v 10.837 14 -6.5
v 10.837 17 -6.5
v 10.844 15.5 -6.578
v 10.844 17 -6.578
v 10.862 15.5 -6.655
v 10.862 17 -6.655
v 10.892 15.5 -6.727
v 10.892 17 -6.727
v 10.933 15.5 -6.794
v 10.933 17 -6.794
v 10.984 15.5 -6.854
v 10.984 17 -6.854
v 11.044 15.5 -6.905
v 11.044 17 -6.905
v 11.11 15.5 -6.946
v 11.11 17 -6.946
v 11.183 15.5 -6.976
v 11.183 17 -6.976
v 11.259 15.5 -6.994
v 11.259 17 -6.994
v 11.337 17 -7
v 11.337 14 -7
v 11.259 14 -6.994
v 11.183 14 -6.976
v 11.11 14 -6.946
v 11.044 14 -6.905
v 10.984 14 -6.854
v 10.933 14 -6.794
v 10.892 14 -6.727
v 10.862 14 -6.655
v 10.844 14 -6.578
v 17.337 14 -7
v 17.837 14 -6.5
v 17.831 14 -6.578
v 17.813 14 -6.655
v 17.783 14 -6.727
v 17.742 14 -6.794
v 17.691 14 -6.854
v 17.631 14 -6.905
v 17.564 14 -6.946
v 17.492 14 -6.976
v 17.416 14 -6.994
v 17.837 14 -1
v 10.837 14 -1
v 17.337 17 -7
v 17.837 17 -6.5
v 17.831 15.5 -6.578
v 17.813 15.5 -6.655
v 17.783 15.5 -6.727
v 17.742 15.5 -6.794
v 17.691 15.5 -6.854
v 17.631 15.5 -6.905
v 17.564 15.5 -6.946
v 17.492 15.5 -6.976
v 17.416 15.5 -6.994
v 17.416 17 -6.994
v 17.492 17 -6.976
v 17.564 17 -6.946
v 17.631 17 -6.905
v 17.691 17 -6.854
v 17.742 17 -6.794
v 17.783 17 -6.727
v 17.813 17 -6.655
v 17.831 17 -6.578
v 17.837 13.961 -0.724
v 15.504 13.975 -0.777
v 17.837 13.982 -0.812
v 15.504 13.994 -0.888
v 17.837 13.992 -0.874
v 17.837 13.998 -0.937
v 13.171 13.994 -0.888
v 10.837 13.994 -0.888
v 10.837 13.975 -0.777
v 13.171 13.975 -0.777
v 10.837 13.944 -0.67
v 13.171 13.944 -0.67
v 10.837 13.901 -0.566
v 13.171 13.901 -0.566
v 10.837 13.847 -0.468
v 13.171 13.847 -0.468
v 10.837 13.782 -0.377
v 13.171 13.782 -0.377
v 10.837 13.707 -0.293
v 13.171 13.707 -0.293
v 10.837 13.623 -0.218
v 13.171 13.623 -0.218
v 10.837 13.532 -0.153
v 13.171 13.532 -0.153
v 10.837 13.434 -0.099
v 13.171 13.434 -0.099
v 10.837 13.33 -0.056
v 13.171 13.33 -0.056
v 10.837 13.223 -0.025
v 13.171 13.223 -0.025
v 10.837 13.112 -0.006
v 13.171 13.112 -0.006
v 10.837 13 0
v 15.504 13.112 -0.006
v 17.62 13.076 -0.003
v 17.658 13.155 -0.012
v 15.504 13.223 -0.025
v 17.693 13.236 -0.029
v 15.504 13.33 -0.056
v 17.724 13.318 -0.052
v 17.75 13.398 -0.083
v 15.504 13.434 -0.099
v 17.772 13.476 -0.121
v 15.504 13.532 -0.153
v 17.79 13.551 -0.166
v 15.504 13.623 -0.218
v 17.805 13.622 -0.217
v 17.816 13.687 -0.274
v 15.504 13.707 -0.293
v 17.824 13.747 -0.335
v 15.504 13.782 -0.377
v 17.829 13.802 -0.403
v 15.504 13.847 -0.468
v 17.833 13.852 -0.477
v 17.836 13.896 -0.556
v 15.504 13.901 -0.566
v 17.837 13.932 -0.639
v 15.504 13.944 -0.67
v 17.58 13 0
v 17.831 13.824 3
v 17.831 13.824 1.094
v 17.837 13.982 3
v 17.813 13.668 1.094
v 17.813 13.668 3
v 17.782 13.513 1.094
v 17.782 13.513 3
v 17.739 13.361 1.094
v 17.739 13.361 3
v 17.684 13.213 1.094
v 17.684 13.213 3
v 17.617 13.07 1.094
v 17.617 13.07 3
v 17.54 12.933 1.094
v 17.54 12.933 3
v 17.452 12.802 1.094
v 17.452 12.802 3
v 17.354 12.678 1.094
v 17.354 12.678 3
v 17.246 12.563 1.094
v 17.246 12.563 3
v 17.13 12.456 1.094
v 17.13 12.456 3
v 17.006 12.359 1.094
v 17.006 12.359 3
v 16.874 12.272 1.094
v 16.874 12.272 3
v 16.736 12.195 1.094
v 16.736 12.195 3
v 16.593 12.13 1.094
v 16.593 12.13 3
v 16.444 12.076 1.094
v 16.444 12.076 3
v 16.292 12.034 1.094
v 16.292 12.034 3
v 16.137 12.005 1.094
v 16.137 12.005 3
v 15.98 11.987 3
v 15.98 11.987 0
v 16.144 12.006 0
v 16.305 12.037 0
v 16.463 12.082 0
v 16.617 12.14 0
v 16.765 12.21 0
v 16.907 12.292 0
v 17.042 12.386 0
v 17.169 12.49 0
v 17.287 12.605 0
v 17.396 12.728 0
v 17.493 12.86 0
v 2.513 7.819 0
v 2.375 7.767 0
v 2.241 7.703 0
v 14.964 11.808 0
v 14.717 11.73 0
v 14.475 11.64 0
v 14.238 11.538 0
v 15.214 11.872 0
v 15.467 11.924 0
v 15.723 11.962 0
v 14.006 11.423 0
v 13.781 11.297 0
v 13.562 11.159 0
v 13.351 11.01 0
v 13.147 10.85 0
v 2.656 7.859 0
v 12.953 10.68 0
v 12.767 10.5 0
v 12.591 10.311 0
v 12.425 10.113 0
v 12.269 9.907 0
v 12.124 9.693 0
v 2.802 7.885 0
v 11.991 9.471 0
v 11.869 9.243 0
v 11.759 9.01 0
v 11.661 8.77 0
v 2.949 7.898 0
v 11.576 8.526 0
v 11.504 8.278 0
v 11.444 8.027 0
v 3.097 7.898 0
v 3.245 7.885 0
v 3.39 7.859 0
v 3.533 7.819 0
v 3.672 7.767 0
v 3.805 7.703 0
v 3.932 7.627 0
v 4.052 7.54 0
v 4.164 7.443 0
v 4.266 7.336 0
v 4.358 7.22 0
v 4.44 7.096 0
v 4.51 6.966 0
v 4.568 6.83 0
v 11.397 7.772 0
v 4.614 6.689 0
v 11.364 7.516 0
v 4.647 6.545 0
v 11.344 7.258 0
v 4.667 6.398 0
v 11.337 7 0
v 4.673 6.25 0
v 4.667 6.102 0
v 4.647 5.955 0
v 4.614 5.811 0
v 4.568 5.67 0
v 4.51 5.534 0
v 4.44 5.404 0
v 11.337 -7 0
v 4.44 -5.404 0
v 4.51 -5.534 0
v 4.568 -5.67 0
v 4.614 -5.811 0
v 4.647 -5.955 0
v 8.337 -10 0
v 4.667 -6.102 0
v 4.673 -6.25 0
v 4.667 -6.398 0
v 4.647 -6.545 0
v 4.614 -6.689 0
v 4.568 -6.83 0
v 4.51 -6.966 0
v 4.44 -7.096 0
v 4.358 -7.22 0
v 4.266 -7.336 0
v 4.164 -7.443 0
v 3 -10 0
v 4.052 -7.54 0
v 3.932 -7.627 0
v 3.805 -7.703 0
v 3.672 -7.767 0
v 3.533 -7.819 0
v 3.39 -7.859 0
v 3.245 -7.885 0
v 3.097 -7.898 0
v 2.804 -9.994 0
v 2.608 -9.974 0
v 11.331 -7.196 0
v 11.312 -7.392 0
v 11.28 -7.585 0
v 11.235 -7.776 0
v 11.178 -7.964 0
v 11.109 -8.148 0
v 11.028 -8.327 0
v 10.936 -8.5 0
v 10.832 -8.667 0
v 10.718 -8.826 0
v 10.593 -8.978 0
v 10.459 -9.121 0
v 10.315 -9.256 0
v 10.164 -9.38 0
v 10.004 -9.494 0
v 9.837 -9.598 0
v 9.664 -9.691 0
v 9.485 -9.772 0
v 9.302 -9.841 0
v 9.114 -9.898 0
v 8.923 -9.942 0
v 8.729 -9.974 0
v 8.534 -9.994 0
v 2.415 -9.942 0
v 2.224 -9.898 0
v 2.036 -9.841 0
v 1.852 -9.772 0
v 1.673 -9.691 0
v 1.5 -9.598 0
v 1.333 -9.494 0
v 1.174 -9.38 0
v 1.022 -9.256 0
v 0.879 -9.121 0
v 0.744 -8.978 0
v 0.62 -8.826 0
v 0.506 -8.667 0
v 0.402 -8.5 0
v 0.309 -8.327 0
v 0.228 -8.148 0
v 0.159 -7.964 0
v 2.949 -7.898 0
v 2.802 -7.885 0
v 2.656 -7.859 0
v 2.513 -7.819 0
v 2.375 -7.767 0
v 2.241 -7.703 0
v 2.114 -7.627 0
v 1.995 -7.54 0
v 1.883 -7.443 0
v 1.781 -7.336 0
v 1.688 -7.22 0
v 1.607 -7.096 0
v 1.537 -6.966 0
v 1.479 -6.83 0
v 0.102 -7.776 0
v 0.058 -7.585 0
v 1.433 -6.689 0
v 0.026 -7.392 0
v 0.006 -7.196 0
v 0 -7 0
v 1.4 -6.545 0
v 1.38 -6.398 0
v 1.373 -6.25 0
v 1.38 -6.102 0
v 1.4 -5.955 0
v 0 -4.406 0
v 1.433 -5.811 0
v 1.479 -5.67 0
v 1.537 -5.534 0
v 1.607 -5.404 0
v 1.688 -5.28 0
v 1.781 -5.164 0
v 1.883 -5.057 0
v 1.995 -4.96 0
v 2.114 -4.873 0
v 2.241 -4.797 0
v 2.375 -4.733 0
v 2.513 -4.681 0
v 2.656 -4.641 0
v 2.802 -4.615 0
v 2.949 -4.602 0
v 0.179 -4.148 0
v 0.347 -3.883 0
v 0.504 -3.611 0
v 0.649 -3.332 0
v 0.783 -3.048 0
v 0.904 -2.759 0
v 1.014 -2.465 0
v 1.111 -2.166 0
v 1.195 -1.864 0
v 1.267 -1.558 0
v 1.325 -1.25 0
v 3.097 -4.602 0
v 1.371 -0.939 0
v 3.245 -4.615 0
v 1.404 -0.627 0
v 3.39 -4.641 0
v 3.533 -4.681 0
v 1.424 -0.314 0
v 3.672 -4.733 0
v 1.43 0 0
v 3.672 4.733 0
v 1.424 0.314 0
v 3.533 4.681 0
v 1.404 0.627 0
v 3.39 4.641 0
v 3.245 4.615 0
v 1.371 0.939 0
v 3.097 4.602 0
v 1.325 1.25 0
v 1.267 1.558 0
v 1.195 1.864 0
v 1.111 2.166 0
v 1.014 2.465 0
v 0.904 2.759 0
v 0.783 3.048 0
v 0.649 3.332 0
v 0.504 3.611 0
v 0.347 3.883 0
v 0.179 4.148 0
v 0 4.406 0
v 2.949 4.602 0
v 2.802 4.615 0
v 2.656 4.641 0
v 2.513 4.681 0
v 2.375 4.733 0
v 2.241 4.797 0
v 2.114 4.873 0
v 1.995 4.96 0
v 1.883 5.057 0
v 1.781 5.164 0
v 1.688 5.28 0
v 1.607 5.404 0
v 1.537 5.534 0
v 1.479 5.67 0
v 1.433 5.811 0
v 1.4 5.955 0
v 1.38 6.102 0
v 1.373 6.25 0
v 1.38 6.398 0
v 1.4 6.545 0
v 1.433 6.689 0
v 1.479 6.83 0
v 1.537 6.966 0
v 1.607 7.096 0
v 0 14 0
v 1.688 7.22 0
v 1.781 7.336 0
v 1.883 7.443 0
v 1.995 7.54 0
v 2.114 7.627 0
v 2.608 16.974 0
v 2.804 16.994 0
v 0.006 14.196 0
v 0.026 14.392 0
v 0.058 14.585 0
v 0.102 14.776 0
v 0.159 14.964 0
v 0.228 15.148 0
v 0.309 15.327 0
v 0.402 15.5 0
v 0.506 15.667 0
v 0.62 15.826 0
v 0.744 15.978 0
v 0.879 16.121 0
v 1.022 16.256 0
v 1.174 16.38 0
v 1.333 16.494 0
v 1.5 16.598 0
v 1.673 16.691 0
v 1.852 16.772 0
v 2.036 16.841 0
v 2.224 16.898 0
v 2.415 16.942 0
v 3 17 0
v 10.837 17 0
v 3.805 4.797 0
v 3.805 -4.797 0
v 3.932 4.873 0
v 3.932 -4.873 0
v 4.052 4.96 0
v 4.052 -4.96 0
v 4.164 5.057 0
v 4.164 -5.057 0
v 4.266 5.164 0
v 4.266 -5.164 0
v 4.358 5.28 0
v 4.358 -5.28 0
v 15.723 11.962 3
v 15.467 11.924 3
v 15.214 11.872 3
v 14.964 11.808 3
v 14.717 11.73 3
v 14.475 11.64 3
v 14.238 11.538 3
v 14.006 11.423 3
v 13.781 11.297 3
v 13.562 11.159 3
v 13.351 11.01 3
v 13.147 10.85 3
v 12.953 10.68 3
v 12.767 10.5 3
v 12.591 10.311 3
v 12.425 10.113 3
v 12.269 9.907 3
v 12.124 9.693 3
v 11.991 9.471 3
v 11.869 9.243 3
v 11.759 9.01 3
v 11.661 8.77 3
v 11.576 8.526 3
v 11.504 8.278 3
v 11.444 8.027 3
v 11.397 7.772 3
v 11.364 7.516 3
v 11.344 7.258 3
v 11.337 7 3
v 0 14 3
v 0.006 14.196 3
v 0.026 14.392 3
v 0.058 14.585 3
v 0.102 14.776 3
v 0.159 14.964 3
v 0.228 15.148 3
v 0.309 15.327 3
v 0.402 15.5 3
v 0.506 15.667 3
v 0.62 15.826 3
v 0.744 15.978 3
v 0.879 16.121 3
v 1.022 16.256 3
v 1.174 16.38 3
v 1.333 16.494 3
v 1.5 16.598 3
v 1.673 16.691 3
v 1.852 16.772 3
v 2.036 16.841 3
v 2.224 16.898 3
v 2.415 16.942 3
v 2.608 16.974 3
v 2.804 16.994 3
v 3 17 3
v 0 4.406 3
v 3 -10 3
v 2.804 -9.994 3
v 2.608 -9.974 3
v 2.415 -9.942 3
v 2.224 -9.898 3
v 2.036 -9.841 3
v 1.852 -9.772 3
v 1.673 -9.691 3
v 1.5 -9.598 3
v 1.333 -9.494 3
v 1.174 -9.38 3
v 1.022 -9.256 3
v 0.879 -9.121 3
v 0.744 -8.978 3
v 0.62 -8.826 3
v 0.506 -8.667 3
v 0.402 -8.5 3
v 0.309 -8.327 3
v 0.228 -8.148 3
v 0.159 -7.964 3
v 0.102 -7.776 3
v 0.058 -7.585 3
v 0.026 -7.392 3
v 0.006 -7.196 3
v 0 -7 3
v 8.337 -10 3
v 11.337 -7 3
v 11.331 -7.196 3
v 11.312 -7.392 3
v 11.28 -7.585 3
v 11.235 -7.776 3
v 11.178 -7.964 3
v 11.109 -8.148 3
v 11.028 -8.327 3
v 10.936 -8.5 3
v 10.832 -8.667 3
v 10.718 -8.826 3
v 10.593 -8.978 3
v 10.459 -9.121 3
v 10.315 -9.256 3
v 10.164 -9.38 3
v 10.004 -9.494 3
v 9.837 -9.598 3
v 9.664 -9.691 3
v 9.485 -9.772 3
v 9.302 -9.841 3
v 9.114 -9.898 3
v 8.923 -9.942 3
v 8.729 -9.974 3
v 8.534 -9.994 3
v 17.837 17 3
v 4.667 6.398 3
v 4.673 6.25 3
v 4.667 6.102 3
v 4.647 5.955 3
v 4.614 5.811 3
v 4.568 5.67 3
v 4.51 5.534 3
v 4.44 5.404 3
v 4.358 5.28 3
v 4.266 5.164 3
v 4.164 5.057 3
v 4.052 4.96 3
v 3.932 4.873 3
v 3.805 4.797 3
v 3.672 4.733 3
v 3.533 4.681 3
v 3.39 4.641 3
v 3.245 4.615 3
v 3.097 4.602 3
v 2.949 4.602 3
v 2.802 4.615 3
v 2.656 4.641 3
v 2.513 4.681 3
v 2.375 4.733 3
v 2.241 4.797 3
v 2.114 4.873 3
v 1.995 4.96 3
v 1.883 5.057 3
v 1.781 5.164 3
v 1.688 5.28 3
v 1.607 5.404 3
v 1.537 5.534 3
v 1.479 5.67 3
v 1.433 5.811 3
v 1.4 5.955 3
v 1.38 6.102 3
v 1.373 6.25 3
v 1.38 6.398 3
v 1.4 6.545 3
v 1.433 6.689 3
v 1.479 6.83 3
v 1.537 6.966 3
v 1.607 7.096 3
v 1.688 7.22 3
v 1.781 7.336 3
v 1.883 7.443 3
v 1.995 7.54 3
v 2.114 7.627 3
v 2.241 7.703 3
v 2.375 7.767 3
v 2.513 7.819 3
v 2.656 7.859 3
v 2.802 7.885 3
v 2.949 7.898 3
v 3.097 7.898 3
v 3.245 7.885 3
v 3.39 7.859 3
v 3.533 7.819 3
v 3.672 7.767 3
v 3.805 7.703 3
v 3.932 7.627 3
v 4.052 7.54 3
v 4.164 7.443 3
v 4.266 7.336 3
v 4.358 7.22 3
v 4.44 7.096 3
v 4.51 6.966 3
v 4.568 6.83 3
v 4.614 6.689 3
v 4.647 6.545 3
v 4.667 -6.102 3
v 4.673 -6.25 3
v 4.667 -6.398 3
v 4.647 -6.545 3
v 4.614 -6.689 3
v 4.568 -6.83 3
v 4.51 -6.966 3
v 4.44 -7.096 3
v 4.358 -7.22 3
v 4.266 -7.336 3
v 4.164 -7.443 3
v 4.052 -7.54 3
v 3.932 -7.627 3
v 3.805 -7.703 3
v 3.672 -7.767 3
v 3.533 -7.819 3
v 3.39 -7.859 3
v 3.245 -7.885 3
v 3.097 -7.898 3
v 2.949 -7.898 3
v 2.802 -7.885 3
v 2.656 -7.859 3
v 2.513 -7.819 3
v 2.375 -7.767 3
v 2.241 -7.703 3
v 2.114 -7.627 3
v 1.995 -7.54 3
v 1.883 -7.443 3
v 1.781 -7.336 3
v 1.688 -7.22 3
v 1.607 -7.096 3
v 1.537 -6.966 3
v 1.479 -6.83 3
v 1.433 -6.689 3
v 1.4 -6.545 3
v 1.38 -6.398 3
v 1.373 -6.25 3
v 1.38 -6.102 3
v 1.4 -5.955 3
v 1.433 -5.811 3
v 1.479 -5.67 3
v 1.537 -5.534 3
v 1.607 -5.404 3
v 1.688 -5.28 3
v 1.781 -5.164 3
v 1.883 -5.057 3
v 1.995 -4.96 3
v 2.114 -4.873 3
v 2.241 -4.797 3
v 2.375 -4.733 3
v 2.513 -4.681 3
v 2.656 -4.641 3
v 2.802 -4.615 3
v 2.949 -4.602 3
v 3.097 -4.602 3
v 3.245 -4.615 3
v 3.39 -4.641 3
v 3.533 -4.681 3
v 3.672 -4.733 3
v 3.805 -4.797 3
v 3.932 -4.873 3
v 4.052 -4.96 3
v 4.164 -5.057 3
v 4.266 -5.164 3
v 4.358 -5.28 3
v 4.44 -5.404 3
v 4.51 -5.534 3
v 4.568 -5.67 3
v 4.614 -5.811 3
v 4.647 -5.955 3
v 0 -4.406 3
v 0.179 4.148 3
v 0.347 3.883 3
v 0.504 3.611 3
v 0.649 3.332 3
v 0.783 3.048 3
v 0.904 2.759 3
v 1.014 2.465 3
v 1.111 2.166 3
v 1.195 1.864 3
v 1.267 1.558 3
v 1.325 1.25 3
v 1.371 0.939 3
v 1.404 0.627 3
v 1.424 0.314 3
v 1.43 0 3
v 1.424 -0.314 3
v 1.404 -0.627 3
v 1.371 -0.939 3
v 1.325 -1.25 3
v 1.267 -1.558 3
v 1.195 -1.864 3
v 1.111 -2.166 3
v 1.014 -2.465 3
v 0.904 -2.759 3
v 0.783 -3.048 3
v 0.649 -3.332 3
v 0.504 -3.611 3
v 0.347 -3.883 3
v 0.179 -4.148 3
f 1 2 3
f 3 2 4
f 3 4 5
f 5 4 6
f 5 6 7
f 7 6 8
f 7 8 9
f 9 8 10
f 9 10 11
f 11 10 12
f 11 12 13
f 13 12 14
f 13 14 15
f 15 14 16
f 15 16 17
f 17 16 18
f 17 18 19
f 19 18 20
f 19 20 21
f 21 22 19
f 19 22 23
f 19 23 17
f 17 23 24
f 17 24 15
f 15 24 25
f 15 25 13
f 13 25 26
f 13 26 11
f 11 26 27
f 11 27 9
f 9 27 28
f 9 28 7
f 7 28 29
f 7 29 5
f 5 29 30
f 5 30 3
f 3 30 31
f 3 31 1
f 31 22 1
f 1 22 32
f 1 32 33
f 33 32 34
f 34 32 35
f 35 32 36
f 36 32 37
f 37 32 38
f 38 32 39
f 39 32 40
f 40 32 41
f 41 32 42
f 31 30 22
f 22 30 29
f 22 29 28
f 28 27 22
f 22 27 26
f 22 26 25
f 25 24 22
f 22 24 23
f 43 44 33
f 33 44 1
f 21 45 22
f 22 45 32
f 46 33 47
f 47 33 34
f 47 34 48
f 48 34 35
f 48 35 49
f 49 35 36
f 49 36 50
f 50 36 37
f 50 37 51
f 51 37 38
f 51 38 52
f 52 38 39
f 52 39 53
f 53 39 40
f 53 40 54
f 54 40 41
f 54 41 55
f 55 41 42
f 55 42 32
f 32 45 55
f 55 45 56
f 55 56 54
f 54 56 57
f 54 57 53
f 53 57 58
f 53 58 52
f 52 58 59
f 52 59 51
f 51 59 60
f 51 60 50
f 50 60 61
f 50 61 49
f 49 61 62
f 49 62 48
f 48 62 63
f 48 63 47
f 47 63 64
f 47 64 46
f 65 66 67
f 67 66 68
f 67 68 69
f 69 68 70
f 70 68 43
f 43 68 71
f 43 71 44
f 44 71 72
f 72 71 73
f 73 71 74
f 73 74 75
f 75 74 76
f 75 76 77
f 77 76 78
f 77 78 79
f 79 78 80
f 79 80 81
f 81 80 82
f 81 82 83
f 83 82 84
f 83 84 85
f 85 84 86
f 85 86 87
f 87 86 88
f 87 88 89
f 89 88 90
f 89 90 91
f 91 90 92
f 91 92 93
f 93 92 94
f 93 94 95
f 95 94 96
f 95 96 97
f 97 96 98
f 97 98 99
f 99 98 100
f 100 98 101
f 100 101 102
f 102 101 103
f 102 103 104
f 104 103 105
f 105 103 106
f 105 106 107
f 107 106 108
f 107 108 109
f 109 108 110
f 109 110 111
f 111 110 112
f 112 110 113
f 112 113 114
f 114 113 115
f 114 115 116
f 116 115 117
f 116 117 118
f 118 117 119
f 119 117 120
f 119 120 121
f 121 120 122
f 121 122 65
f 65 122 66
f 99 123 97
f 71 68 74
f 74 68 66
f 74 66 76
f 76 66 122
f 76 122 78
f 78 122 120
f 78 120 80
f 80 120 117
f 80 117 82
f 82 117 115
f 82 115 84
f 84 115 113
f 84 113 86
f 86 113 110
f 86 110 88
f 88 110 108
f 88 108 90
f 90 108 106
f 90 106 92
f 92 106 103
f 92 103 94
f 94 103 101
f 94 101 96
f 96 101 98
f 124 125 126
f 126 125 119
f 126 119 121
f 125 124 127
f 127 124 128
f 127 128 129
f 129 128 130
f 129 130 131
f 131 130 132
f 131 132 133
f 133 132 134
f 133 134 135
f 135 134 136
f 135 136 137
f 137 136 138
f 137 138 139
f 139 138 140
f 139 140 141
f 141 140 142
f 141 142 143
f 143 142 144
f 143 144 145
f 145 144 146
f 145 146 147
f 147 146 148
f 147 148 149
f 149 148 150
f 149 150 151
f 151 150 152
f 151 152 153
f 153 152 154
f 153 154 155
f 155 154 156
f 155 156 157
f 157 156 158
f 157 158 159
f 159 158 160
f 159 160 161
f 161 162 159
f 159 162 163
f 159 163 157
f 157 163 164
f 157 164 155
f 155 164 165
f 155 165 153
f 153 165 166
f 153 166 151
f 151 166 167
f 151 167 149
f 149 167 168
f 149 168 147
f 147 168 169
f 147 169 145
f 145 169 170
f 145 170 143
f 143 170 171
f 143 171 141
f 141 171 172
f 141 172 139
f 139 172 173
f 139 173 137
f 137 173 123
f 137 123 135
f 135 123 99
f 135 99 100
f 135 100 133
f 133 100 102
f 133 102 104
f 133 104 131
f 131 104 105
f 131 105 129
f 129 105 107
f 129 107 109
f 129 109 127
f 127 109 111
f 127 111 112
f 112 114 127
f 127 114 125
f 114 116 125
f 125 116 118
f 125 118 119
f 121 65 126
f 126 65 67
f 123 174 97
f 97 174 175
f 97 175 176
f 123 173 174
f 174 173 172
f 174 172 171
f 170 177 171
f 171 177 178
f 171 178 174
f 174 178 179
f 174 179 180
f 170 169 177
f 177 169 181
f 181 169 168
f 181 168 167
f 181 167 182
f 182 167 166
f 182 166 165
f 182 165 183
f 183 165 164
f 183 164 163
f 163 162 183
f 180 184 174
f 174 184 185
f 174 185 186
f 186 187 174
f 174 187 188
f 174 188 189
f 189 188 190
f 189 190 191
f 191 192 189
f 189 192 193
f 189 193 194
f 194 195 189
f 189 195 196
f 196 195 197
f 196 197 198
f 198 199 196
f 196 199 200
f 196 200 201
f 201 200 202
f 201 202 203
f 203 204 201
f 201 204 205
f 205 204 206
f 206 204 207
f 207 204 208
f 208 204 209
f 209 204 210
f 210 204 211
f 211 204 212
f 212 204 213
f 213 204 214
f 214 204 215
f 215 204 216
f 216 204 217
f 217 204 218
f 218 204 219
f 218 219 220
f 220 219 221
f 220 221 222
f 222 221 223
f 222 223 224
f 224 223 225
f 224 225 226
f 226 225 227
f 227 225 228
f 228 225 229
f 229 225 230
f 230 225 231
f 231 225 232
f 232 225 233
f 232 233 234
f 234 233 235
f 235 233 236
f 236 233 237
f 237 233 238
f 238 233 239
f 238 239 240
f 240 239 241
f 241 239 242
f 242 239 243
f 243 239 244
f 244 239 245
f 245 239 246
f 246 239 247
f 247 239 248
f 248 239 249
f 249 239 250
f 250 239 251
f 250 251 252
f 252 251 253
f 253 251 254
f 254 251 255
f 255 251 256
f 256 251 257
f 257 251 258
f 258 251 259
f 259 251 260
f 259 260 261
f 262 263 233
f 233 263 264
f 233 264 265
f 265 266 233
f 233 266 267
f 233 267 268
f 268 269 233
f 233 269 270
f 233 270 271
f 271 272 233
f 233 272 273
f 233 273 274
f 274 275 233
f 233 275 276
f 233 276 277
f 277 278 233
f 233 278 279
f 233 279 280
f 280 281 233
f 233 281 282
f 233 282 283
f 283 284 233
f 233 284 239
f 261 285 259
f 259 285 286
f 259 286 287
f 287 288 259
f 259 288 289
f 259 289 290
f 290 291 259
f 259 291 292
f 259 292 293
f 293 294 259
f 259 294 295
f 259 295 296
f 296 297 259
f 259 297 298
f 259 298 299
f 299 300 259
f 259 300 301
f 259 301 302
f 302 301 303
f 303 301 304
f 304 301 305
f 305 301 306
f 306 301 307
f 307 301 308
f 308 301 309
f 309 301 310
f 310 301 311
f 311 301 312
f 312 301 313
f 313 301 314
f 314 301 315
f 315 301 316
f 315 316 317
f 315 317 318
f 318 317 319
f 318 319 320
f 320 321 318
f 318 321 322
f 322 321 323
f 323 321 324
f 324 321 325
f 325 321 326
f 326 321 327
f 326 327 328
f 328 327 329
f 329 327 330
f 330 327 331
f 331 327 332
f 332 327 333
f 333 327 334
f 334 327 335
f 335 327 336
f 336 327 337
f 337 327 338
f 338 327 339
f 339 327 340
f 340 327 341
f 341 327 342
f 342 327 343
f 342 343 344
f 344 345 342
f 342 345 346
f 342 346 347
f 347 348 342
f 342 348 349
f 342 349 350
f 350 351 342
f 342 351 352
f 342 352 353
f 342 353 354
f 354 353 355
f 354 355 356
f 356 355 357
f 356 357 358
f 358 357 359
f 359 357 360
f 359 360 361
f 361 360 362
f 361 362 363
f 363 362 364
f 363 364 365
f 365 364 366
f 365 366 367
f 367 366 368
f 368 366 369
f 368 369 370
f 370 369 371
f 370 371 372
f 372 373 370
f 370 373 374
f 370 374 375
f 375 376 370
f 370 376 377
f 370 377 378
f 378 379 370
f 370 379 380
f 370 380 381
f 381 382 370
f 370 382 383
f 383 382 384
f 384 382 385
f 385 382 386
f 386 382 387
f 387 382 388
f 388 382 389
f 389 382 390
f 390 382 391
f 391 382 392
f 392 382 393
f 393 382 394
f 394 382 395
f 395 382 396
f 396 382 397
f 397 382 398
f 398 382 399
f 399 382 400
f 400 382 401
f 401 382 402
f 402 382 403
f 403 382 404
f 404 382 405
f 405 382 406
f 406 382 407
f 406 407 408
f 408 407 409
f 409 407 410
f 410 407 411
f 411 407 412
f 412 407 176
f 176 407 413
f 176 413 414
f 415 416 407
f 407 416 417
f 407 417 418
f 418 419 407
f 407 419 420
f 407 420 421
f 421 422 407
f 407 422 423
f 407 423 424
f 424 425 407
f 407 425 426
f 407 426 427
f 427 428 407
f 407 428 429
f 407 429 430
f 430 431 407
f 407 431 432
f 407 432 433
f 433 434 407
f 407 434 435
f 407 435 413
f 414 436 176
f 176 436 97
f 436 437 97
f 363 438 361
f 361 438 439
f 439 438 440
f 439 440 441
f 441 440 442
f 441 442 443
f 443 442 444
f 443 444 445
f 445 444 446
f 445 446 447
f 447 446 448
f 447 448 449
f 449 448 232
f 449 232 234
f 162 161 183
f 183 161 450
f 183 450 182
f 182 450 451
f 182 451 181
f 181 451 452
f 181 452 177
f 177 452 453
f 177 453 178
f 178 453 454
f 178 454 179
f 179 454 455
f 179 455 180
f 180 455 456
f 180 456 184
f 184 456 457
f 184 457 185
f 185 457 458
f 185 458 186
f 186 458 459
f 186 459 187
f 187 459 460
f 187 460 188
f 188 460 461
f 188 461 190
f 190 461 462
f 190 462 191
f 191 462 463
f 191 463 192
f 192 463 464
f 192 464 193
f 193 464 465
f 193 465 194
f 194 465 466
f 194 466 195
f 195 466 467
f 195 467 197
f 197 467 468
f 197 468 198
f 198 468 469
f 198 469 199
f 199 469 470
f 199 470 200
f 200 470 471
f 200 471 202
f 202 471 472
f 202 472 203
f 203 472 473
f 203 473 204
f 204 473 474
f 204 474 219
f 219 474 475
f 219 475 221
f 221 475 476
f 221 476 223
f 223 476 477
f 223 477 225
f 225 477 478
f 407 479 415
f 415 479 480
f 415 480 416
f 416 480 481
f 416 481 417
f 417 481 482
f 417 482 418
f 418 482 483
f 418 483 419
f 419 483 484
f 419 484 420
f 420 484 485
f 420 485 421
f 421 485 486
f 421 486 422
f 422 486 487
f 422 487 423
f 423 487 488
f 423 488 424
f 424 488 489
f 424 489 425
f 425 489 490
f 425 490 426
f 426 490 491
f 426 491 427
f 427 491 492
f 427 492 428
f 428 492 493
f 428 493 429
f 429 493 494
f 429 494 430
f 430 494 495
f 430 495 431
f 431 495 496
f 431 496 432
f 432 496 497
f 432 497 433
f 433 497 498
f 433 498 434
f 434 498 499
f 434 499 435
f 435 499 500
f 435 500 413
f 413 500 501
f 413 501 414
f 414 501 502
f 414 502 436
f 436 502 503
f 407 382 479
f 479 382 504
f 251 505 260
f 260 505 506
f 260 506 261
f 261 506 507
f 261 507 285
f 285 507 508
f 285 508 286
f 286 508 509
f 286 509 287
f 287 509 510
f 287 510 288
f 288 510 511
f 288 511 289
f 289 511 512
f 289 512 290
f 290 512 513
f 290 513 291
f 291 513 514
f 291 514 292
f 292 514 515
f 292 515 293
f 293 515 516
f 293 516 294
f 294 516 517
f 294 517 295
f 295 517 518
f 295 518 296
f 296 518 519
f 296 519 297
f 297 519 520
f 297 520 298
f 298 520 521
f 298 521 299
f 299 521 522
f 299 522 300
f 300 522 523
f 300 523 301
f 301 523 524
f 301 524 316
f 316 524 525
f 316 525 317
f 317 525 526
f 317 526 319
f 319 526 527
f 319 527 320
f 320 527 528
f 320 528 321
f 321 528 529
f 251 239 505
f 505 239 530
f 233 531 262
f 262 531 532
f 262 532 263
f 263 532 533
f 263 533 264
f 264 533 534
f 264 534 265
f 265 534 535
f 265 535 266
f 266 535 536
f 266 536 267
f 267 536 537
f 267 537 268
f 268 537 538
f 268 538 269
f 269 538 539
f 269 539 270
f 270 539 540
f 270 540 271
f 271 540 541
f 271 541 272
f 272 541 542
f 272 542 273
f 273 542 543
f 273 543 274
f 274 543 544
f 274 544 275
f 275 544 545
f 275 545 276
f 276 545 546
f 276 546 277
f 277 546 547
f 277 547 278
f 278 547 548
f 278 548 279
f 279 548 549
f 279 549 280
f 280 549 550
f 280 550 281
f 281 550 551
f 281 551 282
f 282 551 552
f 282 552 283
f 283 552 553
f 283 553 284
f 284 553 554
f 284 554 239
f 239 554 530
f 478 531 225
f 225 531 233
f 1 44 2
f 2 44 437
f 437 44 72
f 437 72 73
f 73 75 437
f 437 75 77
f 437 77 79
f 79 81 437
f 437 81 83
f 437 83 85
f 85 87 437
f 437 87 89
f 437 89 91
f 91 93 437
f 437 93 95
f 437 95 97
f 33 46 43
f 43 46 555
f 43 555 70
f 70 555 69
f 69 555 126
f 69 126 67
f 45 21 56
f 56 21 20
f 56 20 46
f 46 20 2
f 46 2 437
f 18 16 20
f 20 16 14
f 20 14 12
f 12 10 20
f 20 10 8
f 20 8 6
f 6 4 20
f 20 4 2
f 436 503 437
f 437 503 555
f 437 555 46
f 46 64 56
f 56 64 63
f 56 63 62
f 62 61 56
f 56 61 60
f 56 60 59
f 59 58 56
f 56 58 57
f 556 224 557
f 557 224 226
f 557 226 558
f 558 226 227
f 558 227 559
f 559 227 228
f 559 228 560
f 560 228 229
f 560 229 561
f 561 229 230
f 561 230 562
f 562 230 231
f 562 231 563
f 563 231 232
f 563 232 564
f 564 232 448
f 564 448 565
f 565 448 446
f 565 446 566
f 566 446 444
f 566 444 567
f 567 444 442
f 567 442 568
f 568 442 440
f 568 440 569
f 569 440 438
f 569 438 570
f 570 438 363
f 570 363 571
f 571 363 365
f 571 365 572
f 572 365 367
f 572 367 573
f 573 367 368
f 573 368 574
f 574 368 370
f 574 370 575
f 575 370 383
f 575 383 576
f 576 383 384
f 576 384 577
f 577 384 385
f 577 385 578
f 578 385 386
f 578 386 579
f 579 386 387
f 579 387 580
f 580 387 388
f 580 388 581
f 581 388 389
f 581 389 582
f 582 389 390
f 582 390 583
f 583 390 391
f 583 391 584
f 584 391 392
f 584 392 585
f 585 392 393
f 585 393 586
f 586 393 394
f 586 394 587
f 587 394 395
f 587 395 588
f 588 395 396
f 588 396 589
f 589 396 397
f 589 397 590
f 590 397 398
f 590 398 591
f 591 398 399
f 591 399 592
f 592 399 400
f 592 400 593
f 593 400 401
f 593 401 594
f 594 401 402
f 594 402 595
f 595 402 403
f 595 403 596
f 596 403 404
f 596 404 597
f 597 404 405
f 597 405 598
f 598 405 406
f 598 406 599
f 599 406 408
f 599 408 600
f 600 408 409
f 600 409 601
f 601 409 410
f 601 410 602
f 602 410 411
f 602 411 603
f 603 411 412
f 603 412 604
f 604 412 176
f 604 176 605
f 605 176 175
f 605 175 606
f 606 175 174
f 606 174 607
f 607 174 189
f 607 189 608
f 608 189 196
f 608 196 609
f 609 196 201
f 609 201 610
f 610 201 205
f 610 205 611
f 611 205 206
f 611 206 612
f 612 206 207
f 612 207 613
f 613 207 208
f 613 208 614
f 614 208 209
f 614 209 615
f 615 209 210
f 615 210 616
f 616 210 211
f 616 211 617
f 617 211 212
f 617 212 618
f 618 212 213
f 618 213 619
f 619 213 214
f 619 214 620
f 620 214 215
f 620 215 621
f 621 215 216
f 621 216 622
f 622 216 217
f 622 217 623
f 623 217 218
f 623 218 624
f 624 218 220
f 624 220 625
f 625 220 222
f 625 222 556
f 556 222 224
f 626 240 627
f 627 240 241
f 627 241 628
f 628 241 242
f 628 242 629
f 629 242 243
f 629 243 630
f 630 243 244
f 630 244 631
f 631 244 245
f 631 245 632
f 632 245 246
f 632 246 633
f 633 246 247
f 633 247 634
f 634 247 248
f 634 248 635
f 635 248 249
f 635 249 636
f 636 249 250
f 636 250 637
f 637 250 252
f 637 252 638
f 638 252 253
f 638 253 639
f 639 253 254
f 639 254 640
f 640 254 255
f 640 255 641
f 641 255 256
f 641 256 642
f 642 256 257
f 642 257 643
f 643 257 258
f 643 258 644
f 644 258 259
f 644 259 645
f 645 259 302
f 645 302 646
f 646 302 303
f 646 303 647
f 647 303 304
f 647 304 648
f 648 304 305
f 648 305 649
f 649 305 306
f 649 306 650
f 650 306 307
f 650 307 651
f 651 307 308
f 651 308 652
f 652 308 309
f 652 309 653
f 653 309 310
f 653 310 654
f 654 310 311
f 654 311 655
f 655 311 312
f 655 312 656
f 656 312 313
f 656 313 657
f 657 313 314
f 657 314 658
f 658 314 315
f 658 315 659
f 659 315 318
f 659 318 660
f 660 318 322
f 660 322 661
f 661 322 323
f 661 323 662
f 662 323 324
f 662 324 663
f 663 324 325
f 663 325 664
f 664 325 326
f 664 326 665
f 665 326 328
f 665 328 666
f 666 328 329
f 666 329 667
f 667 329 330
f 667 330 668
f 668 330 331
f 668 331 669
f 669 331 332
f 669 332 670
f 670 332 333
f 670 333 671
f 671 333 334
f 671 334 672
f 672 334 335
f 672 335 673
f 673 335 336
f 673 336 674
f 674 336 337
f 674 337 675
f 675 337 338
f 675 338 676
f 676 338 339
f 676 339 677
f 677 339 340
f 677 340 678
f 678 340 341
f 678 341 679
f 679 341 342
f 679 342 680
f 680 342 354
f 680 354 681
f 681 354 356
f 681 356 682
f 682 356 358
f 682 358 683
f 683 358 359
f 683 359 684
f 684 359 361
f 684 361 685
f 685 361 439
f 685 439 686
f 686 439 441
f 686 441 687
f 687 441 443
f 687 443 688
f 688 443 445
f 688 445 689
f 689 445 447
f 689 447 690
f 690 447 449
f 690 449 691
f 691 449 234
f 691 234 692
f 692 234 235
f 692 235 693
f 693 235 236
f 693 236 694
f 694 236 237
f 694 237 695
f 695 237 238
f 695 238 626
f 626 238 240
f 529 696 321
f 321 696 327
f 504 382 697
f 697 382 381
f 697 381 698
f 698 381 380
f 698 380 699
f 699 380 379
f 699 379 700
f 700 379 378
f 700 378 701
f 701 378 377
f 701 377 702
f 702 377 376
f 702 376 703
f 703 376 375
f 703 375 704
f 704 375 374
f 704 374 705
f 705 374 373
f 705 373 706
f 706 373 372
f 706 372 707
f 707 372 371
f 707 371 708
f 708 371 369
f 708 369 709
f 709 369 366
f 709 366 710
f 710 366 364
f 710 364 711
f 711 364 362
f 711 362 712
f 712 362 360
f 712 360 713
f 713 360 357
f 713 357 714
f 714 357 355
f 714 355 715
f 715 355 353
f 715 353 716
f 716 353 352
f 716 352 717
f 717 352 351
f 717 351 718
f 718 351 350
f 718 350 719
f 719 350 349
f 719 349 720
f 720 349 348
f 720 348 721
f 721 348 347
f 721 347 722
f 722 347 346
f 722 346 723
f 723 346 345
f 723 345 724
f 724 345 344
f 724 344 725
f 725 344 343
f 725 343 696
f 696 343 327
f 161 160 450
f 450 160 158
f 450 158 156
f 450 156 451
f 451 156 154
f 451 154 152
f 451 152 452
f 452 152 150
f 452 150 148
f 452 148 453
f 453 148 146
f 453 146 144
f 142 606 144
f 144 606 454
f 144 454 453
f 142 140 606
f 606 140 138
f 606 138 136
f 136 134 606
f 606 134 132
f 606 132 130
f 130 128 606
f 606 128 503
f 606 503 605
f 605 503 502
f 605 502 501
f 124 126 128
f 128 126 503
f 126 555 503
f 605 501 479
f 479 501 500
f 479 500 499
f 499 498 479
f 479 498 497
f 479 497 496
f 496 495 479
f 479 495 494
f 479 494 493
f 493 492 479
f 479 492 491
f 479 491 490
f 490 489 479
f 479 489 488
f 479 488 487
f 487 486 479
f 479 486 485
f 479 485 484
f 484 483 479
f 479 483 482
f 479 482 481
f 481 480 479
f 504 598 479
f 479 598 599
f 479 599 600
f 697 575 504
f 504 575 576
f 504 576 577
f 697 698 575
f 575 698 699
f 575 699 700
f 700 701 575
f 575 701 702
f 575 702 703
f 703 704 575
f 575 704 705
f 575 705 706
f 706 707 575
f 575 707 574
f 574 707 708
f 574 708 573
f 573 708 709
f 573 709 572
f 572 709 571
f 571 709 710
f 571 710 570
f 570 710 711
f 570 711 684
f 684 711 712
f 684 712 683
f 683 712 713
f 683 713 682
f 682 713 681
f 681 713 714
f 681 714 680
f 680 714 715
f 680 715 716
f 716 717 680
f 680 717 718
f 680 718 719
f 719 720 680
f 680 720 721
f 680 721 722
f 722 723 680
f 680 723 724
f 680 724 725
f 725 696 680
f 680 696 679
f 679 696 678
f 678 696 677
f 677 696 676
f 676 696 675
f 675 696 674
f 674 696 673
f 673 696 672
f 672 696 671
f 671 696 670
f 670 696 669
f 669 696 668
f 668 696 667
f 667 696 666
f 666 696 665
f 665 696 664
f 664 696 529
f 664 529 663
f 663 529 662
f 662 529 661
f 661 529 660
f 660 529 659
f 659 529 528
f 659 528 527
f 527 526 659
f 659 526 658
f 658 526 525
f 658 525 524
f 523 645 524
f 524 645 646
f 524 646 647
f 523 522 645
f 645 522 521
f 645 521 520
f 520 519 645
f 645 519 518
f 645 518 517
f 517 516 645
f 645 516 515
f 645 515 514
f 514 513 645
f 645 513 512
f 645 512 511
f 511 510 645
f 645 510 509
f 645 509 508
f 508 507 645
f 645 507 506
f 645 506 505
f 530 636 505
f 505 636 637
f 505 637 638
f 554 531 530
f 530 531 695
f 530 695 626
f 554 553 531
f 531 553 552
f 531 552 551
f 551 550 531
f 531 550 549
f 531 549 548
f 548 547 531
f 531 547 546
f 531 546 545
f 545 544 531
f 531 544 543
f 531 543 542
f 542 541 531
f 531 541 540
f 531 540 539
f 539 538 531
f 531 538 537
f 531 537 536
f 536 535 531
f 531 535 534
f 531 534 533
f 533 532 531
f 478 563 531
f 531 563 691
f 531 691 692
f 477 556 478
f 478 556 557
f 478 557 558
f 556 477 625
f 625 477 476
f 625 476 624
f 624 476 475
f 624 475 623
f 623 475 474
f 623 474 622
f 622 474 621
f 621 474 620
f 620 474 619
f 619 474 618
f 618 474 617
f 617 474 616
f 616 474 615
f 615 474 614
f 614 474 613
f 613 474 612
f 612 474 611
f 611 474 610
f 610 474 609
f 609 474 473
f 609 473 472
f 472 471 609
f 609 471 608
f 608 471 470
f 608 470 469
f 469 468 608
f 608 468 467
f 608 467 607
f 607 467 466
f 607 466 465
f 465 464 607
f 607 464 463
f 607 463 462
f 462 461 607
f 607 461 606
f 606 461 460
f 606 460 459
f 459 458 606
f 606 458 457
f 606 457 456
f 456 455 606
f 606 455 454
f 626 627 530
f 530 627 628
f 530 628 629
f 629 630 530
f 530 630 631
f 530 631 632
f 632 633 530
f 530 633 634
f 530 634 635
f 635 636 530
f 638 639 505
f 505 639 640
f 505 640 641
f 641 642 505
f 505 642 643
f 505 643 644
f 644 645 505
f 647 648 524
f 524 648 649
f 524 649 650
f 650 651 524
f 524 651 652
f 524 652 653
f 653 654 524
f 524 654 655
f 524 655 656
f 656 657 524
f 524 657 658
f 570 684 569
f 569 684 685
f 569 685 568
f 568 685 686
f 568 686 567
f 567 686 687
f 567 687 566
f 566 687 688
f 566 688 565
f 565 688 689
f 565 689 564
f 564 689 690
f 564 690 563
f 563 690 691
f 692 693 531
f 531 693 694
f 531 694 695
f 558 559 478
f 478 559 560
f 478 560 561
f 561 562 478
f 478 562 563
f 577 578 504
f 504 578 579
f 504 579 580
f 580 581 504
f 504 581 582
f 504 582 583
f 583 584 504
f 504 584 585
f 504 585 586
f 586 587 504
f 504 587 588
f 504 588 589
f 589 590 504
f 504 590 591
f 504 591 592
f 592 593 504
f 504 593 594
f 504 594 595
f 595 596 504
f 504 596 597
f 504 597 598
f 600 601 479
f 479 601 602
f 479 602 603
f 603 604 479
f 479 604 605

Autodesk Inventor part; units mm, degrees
ref_plane "YZ Plane" through (0, 0, 0) normal (1, 0, 0) x (0, 1, 0)
ref_plane "XZ Plane" through (0, 0, 0) normal (0, 1, 0) x (-1, 0, 0)
ref_plane "XY Plane" through (0, 0, 0) normal (0, 0, 1) x (1, 0, 0)
sketch "Sketch1" plane through (0, 0, 0) normal (0, 0, 1) x (1, 0, 0)
  line L0 (0, 12) -> (11.3374, 12)
  line L1 (11.3374, 12) -> (11.3374, -10)
  line L2 (11.3374, -10) -> (0, -10)
  line L3 (0, -10) -> (0, 12)
  line L4 (3.0233, 0) -> (3.0233, 6.25) construction
  circle A0 centre (3.0233, 6.25) radius 1.65
  line L5 (3.0233, 0) -> (0, 0) construction
  circle A1 centre (3.0233, -6.25) radius 1.65
  circle A2 centre (-6.0697, 0) radius 7.5
  point P0 (0, 4.4056)
  point P1 (0, -4.4056)
  dimension "d0" = 3.3
  dimension "d1" = 6.25
  dimension "d2" = 11.3375
  dimension "d3" = 9.093
  dimension "d4" = 15
  dimension "d8" = 12
  dimension "d9" = 10
extrude "Extrusion1" add sketch "Sketch1" along normal blind 3 contours L0 L1 L2 L3 A2
sketch "Sketch2" plane through (0, 0, 0) normal (0, 0, -1) x (-1, 0, 0)
  line L0 (-11.3374, 12) -> (0, 12) projected
  line L1 (0, 12) -> (-17.8374, 12)
  line L2 (-17.8374, 12) -> (-17.8374, 17)
  line L3 (-17.8374, 17) -> (0, 17)
  line L4 (0, 17) -> (0, 12)
  line L5 (-11.3374, -10) -> (-11.3374, 12) projected
  point P0 (0, 0)
  dimension "d10" = 6.5
  dimension "d11" = 5
extrude "Extrusion2" add sketch "Sketch2" against normal blind 3
sketch "Sketch3" plane through (0, 0, 0) normal (0, 0, -1) x (-1, 0, 0)
  line L0 (-17.8374, 17) -> (0, 17) projected
  line L1 (-17.8374, 17) -> (-10.8374, 17)
  line L2 (-10.8374, 17) -> (-10.8374, 14)
  line L3 (-10.8374, 14) -> (-17.8374, 14)
  line L4 (-17.8374, 14) -> (-17.8374, 17)
  point P0 (0, 0)
  dimension "d14" = 3
  dimension "d15" = 7
extrude "Extrusion3" add sketch "Sketch3" along normal blind 7
fillet "Fillet1" radius 3 3 edges at (11.3374, -10, 1.5) (0, -10, 1.5) (0, 17, 1.5)
fillet "Fillet2" radius 5 1 edges at (11.3374, 12, 1.5)
fillet "Fillet3" radius 2 1 edges at (17.8374, 12, 1.5)
fillet "Fillet4" radius 1 1 edges at (14.3374, 14, 0)
fillet "Fillet5" radius 0.5 2 edges at (17.8374, 15.5, -7) (10.8374, 15.5, -7)
properties part number "Beam breaker"
